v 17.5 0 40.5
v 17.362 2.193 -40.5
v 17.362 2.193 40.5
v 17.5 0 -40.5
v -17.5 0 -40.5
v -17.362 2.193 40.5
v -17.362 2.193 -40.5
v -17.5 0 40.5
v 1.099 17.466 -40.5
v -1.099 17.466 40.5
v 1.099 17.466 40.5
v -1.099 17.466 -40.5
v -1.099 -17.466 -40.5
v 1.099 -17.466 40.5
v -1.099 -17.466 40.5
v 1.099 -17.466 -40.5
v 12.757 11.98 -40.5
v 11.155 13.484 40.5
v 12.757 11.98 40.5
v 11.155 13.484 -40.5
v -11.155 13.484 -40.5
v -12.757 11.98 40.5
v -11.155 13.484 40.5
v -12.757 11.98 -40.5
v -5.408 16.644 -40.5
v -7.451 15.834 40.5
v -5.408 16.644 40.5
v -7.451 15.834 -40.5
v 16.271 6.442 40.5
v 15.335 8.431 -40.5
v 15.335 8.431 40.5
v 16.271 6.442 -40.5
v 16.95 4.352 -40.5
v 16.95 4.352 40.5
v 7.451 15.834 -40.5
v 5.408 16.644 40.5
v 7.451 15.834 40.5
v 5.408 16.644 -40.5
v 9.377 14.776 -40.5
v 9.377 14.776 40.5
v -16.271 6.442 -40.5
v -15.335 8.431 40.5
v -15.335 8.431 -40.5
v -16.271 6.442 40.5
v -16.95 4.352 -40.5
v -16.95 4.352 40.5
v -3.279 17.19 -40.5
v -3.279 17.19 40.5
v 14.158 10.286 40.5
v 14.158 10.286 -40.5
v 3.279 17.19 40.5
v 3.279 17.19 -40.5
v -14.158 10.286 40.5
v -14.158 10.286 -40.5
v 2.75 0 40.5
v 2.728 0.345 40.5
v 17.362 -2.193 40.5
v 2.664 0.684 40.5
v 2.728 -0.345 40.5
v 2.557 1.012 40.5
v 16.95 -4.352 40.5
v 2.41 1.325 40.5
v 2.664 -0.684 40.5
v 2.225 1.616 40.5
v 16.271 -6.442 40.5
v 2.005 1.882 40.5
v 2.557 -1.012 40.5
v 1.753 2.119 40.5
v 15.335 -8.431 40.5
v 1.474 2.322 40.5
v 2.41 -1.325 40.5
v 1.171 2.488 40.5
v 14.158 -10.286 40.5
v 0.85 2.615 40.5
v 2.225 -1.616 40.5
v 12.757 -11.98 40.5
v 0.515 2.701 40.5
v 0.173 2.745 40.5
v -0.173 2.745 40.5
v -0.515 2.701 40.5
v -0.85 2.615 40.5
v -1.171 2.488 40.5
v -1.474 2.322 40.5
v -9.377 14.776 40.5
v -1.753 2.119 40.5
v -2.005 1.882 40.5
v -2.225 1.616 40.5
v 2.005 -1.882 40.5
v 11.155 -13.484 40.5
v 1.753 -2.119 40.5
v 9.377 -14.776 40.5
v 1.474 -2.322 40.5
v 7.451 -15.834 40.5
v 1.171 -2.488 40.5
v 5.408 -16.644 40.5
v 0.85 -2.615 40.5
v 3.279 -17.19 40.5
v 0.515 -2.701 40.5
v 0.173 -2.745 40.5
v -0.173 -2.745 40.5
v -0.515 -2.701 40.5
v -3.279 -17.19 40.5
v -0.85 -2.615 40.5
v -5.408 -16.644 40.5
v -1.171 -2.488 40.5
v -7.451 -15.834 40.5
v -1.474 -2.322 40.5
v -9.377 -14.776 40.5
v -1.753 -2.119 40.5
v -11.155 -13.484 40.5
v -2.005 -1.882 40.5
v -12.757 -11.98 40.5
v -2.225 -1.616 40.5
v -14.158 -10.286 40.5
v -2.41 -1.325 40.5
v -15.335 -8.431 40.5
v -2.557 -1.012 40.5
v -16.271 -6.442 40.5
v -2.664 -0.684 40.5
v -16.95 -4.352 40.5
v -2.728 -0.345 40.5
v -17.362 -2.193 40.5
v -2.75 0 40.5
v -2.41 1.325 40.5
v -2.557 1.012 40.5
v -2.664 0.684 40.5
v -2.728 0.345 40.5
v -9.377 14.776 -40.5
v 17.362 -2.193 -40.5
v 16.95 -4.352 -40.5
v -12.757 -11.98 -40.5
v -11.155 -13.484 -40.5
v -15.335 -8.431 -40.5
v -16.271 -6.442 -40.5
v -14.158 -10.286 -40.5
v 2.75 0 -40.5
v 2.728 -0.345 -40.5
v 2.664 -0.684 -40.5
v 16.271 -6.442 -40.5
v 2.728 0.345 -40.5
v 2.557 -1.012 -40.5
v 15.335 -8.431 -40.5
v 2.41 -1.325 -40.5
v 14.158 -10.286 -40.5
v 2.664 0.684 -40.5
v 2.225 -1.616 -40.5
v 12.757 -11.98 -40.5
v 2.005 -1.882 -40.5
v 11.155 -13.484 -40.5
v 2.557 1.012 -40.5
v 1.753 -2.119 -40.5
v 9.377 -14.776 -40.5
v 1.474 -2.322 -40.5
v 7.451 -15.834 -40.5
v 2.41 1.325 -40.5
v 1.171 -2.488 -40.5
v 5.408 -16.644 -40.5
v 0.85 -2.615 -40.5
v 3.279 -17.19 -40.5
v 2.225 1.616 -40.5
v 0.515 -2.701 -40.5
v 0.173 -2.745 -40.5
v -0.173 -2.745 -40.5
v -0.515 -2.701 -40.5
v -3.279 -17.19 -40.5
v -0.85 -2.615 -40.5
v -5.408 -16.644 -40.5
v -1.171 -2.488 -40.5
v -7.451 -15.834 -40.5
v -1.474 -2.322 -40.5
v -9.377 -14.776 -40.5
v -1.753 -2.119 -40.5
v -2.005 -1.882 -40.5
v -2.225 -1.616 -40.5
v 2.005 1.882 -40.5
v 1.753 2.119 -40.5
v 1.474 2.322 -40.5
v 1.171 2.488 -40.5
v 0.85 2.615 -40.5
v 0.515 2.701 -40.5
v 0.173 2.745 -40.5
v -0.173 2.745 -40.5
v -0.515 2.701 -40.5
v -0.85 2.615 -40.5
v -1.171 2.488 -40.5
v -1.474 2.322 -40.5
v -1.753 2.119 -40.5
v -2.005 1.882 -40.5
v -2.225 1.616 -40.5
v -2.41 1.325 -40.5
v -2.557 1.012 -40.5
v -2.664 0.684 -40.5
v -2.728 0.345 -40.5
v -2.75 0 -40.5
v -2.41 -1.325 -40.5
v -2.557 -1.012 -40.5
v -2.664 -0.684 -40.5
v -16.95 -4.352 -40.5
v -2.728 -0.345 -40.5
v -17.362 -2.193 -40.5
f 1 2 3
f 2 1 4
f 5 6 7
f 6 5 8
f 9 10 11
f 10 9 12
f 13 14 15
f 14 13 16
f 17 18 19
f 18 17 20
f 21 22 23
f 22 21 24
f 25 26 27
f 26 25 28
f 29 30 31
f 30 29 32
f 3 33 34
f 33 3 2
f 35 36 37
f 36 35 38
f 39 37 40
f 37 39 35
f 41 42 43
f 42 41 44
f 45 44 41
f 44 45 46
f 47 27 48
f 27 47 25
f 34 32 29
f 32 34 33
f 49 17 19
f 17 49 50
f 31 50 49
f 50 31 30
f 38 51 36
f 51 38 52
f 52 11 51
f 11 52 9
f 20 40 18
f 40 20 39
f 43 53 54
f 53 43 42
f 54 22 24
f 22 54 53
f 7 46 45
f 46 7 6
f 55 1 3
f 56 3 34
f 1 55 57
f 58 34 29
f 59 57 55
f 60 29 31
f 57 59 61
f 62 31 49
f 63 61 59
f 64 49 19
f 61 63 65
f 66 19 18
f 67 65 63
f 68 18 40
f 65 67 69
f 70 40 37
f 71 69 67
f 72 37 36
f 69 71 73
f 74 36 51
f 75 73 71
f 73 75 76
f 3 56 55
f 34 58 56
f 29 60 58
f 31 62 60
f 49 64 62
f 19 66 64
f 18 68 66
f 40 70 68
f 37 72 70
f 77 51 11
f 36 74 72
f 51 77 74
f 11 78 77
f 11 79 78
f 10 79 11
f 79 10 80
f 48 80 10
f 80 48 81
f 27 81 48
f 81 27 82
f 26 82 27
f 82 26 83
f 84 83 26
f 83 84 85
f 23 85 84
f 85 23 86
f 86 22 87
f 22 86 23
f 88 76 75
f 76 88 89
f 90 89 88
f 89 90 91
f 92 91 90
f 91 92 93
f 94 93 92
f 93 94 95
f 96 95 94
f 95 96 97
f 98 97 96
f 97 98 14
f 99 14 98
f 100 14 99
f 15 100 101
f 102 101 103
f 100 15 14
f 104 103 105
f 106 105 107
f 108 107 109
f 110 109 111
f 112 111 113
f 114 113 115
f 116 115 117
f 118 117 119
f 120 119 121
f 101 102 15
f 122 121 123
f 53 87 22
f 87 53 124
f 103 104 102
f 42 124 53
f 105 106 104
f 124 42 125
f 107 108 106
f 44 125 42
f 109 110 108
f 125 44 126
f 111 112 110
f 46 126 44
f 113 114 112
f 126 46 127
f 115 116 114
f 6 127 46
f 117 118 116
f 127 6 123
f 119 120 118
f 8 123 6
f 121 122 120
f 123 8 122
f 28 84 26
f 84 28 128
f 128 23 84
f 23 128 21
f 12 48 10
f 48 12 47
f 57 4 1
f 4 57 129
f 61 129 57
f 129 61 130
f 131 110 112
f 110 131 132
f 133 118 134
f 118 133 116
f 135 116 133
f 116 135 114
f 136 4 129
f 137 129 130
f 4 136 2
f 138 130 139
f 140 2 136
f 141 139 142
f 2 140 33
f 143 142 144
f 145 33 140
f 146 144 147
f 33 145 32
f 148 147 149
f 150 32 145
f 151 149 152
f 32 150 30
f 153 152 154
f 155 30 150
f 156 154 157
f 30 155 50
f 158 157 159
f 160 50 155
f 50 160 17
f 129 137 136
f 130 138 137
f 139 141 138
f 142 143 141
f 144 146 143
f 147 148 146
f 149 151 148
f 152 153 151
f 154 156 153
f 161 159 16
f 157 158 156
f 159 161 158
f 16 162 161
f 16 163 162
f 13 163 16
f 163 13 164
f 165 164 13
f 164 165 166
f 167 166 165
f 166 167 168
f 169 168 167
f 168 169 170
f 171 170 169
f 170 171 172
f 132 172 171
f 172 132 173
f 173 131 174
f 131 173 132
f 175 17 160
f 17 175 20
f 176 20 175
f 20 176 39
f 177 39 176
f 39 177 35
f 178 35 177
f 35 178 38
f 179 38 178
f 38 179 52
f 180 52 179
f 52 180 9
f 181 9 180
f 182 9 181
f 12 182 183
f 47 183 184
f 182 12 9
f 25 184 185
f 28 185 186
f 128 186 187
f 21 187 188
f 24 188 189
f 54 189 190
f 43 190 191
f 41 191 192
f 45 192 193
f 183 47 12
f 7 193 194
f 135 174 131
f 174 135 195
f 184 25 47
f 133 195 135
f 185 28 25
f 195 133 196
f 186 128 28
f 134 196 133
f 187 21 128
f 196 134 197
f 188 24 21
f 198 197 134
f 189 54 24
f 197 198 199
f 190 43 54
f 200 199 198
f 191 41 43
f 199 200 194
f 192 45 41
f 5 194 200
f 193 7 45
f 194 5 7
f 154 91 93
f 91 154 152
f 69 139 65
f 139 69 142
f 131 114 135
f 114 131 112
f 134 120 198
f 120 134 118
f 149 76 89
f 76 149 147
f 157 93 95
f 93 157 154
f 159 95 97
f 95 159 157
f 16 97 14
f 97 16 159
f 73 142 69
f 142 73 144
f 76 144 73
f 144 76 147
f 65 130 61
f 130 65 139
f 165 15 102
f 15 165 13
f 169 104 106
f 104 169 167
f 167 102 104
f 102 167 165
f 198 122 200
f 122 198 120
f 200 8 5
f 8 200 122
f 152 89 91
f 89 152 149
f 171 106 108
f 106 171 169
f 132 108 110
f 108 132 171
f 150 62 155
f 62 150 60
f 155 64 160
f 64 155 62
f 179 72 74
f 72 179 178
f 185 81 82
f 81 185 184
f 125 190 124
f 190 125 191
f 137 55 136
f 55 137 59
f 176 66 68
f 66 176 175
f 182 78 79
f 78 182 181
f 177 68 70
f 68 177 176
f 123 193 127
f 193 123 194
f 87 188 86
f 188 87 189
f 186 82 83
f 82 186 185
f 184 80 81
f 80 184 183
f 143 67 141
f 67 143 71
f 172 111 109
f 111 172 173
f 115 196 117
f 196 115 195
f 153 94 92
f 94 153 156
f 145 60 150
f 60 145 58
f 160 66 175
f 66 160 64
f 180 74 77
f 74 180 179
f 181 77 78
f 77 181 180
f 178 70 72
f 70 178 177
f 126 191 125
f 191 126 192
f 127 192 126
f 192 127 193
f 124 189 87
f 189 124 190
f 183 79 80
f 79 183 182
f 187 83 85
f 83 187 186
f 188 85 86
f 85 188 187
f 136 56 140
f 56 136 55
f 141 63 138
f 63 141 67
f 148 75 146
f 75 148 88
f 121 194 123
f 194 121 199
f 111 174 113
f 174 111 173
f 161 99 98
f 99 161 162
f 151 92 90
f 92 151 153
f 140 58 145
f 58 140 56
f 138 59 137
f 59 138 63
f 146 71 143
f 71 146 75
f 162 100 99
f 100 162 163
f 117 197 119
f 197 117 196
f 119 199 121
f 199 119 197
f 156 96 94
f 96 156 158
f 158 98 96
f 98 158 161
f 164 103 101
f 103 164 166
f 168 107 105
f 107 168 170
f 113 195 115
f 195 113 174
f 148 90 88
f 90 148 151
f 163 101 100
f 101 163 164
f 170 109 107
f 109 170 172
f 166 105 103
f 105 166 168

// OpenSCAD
$fn = 50;


difference() {
	union() {
		translate(v = [0, 0, -40.5000000000]) {
			cylinder(h = 81, r = 17.5000000000);
		}
	}
	union() {
		translate(v = [0, 0, -100.0000000000]) {
			cylinder(h = 200, r = 2.7500000000);
		}
	}
}
